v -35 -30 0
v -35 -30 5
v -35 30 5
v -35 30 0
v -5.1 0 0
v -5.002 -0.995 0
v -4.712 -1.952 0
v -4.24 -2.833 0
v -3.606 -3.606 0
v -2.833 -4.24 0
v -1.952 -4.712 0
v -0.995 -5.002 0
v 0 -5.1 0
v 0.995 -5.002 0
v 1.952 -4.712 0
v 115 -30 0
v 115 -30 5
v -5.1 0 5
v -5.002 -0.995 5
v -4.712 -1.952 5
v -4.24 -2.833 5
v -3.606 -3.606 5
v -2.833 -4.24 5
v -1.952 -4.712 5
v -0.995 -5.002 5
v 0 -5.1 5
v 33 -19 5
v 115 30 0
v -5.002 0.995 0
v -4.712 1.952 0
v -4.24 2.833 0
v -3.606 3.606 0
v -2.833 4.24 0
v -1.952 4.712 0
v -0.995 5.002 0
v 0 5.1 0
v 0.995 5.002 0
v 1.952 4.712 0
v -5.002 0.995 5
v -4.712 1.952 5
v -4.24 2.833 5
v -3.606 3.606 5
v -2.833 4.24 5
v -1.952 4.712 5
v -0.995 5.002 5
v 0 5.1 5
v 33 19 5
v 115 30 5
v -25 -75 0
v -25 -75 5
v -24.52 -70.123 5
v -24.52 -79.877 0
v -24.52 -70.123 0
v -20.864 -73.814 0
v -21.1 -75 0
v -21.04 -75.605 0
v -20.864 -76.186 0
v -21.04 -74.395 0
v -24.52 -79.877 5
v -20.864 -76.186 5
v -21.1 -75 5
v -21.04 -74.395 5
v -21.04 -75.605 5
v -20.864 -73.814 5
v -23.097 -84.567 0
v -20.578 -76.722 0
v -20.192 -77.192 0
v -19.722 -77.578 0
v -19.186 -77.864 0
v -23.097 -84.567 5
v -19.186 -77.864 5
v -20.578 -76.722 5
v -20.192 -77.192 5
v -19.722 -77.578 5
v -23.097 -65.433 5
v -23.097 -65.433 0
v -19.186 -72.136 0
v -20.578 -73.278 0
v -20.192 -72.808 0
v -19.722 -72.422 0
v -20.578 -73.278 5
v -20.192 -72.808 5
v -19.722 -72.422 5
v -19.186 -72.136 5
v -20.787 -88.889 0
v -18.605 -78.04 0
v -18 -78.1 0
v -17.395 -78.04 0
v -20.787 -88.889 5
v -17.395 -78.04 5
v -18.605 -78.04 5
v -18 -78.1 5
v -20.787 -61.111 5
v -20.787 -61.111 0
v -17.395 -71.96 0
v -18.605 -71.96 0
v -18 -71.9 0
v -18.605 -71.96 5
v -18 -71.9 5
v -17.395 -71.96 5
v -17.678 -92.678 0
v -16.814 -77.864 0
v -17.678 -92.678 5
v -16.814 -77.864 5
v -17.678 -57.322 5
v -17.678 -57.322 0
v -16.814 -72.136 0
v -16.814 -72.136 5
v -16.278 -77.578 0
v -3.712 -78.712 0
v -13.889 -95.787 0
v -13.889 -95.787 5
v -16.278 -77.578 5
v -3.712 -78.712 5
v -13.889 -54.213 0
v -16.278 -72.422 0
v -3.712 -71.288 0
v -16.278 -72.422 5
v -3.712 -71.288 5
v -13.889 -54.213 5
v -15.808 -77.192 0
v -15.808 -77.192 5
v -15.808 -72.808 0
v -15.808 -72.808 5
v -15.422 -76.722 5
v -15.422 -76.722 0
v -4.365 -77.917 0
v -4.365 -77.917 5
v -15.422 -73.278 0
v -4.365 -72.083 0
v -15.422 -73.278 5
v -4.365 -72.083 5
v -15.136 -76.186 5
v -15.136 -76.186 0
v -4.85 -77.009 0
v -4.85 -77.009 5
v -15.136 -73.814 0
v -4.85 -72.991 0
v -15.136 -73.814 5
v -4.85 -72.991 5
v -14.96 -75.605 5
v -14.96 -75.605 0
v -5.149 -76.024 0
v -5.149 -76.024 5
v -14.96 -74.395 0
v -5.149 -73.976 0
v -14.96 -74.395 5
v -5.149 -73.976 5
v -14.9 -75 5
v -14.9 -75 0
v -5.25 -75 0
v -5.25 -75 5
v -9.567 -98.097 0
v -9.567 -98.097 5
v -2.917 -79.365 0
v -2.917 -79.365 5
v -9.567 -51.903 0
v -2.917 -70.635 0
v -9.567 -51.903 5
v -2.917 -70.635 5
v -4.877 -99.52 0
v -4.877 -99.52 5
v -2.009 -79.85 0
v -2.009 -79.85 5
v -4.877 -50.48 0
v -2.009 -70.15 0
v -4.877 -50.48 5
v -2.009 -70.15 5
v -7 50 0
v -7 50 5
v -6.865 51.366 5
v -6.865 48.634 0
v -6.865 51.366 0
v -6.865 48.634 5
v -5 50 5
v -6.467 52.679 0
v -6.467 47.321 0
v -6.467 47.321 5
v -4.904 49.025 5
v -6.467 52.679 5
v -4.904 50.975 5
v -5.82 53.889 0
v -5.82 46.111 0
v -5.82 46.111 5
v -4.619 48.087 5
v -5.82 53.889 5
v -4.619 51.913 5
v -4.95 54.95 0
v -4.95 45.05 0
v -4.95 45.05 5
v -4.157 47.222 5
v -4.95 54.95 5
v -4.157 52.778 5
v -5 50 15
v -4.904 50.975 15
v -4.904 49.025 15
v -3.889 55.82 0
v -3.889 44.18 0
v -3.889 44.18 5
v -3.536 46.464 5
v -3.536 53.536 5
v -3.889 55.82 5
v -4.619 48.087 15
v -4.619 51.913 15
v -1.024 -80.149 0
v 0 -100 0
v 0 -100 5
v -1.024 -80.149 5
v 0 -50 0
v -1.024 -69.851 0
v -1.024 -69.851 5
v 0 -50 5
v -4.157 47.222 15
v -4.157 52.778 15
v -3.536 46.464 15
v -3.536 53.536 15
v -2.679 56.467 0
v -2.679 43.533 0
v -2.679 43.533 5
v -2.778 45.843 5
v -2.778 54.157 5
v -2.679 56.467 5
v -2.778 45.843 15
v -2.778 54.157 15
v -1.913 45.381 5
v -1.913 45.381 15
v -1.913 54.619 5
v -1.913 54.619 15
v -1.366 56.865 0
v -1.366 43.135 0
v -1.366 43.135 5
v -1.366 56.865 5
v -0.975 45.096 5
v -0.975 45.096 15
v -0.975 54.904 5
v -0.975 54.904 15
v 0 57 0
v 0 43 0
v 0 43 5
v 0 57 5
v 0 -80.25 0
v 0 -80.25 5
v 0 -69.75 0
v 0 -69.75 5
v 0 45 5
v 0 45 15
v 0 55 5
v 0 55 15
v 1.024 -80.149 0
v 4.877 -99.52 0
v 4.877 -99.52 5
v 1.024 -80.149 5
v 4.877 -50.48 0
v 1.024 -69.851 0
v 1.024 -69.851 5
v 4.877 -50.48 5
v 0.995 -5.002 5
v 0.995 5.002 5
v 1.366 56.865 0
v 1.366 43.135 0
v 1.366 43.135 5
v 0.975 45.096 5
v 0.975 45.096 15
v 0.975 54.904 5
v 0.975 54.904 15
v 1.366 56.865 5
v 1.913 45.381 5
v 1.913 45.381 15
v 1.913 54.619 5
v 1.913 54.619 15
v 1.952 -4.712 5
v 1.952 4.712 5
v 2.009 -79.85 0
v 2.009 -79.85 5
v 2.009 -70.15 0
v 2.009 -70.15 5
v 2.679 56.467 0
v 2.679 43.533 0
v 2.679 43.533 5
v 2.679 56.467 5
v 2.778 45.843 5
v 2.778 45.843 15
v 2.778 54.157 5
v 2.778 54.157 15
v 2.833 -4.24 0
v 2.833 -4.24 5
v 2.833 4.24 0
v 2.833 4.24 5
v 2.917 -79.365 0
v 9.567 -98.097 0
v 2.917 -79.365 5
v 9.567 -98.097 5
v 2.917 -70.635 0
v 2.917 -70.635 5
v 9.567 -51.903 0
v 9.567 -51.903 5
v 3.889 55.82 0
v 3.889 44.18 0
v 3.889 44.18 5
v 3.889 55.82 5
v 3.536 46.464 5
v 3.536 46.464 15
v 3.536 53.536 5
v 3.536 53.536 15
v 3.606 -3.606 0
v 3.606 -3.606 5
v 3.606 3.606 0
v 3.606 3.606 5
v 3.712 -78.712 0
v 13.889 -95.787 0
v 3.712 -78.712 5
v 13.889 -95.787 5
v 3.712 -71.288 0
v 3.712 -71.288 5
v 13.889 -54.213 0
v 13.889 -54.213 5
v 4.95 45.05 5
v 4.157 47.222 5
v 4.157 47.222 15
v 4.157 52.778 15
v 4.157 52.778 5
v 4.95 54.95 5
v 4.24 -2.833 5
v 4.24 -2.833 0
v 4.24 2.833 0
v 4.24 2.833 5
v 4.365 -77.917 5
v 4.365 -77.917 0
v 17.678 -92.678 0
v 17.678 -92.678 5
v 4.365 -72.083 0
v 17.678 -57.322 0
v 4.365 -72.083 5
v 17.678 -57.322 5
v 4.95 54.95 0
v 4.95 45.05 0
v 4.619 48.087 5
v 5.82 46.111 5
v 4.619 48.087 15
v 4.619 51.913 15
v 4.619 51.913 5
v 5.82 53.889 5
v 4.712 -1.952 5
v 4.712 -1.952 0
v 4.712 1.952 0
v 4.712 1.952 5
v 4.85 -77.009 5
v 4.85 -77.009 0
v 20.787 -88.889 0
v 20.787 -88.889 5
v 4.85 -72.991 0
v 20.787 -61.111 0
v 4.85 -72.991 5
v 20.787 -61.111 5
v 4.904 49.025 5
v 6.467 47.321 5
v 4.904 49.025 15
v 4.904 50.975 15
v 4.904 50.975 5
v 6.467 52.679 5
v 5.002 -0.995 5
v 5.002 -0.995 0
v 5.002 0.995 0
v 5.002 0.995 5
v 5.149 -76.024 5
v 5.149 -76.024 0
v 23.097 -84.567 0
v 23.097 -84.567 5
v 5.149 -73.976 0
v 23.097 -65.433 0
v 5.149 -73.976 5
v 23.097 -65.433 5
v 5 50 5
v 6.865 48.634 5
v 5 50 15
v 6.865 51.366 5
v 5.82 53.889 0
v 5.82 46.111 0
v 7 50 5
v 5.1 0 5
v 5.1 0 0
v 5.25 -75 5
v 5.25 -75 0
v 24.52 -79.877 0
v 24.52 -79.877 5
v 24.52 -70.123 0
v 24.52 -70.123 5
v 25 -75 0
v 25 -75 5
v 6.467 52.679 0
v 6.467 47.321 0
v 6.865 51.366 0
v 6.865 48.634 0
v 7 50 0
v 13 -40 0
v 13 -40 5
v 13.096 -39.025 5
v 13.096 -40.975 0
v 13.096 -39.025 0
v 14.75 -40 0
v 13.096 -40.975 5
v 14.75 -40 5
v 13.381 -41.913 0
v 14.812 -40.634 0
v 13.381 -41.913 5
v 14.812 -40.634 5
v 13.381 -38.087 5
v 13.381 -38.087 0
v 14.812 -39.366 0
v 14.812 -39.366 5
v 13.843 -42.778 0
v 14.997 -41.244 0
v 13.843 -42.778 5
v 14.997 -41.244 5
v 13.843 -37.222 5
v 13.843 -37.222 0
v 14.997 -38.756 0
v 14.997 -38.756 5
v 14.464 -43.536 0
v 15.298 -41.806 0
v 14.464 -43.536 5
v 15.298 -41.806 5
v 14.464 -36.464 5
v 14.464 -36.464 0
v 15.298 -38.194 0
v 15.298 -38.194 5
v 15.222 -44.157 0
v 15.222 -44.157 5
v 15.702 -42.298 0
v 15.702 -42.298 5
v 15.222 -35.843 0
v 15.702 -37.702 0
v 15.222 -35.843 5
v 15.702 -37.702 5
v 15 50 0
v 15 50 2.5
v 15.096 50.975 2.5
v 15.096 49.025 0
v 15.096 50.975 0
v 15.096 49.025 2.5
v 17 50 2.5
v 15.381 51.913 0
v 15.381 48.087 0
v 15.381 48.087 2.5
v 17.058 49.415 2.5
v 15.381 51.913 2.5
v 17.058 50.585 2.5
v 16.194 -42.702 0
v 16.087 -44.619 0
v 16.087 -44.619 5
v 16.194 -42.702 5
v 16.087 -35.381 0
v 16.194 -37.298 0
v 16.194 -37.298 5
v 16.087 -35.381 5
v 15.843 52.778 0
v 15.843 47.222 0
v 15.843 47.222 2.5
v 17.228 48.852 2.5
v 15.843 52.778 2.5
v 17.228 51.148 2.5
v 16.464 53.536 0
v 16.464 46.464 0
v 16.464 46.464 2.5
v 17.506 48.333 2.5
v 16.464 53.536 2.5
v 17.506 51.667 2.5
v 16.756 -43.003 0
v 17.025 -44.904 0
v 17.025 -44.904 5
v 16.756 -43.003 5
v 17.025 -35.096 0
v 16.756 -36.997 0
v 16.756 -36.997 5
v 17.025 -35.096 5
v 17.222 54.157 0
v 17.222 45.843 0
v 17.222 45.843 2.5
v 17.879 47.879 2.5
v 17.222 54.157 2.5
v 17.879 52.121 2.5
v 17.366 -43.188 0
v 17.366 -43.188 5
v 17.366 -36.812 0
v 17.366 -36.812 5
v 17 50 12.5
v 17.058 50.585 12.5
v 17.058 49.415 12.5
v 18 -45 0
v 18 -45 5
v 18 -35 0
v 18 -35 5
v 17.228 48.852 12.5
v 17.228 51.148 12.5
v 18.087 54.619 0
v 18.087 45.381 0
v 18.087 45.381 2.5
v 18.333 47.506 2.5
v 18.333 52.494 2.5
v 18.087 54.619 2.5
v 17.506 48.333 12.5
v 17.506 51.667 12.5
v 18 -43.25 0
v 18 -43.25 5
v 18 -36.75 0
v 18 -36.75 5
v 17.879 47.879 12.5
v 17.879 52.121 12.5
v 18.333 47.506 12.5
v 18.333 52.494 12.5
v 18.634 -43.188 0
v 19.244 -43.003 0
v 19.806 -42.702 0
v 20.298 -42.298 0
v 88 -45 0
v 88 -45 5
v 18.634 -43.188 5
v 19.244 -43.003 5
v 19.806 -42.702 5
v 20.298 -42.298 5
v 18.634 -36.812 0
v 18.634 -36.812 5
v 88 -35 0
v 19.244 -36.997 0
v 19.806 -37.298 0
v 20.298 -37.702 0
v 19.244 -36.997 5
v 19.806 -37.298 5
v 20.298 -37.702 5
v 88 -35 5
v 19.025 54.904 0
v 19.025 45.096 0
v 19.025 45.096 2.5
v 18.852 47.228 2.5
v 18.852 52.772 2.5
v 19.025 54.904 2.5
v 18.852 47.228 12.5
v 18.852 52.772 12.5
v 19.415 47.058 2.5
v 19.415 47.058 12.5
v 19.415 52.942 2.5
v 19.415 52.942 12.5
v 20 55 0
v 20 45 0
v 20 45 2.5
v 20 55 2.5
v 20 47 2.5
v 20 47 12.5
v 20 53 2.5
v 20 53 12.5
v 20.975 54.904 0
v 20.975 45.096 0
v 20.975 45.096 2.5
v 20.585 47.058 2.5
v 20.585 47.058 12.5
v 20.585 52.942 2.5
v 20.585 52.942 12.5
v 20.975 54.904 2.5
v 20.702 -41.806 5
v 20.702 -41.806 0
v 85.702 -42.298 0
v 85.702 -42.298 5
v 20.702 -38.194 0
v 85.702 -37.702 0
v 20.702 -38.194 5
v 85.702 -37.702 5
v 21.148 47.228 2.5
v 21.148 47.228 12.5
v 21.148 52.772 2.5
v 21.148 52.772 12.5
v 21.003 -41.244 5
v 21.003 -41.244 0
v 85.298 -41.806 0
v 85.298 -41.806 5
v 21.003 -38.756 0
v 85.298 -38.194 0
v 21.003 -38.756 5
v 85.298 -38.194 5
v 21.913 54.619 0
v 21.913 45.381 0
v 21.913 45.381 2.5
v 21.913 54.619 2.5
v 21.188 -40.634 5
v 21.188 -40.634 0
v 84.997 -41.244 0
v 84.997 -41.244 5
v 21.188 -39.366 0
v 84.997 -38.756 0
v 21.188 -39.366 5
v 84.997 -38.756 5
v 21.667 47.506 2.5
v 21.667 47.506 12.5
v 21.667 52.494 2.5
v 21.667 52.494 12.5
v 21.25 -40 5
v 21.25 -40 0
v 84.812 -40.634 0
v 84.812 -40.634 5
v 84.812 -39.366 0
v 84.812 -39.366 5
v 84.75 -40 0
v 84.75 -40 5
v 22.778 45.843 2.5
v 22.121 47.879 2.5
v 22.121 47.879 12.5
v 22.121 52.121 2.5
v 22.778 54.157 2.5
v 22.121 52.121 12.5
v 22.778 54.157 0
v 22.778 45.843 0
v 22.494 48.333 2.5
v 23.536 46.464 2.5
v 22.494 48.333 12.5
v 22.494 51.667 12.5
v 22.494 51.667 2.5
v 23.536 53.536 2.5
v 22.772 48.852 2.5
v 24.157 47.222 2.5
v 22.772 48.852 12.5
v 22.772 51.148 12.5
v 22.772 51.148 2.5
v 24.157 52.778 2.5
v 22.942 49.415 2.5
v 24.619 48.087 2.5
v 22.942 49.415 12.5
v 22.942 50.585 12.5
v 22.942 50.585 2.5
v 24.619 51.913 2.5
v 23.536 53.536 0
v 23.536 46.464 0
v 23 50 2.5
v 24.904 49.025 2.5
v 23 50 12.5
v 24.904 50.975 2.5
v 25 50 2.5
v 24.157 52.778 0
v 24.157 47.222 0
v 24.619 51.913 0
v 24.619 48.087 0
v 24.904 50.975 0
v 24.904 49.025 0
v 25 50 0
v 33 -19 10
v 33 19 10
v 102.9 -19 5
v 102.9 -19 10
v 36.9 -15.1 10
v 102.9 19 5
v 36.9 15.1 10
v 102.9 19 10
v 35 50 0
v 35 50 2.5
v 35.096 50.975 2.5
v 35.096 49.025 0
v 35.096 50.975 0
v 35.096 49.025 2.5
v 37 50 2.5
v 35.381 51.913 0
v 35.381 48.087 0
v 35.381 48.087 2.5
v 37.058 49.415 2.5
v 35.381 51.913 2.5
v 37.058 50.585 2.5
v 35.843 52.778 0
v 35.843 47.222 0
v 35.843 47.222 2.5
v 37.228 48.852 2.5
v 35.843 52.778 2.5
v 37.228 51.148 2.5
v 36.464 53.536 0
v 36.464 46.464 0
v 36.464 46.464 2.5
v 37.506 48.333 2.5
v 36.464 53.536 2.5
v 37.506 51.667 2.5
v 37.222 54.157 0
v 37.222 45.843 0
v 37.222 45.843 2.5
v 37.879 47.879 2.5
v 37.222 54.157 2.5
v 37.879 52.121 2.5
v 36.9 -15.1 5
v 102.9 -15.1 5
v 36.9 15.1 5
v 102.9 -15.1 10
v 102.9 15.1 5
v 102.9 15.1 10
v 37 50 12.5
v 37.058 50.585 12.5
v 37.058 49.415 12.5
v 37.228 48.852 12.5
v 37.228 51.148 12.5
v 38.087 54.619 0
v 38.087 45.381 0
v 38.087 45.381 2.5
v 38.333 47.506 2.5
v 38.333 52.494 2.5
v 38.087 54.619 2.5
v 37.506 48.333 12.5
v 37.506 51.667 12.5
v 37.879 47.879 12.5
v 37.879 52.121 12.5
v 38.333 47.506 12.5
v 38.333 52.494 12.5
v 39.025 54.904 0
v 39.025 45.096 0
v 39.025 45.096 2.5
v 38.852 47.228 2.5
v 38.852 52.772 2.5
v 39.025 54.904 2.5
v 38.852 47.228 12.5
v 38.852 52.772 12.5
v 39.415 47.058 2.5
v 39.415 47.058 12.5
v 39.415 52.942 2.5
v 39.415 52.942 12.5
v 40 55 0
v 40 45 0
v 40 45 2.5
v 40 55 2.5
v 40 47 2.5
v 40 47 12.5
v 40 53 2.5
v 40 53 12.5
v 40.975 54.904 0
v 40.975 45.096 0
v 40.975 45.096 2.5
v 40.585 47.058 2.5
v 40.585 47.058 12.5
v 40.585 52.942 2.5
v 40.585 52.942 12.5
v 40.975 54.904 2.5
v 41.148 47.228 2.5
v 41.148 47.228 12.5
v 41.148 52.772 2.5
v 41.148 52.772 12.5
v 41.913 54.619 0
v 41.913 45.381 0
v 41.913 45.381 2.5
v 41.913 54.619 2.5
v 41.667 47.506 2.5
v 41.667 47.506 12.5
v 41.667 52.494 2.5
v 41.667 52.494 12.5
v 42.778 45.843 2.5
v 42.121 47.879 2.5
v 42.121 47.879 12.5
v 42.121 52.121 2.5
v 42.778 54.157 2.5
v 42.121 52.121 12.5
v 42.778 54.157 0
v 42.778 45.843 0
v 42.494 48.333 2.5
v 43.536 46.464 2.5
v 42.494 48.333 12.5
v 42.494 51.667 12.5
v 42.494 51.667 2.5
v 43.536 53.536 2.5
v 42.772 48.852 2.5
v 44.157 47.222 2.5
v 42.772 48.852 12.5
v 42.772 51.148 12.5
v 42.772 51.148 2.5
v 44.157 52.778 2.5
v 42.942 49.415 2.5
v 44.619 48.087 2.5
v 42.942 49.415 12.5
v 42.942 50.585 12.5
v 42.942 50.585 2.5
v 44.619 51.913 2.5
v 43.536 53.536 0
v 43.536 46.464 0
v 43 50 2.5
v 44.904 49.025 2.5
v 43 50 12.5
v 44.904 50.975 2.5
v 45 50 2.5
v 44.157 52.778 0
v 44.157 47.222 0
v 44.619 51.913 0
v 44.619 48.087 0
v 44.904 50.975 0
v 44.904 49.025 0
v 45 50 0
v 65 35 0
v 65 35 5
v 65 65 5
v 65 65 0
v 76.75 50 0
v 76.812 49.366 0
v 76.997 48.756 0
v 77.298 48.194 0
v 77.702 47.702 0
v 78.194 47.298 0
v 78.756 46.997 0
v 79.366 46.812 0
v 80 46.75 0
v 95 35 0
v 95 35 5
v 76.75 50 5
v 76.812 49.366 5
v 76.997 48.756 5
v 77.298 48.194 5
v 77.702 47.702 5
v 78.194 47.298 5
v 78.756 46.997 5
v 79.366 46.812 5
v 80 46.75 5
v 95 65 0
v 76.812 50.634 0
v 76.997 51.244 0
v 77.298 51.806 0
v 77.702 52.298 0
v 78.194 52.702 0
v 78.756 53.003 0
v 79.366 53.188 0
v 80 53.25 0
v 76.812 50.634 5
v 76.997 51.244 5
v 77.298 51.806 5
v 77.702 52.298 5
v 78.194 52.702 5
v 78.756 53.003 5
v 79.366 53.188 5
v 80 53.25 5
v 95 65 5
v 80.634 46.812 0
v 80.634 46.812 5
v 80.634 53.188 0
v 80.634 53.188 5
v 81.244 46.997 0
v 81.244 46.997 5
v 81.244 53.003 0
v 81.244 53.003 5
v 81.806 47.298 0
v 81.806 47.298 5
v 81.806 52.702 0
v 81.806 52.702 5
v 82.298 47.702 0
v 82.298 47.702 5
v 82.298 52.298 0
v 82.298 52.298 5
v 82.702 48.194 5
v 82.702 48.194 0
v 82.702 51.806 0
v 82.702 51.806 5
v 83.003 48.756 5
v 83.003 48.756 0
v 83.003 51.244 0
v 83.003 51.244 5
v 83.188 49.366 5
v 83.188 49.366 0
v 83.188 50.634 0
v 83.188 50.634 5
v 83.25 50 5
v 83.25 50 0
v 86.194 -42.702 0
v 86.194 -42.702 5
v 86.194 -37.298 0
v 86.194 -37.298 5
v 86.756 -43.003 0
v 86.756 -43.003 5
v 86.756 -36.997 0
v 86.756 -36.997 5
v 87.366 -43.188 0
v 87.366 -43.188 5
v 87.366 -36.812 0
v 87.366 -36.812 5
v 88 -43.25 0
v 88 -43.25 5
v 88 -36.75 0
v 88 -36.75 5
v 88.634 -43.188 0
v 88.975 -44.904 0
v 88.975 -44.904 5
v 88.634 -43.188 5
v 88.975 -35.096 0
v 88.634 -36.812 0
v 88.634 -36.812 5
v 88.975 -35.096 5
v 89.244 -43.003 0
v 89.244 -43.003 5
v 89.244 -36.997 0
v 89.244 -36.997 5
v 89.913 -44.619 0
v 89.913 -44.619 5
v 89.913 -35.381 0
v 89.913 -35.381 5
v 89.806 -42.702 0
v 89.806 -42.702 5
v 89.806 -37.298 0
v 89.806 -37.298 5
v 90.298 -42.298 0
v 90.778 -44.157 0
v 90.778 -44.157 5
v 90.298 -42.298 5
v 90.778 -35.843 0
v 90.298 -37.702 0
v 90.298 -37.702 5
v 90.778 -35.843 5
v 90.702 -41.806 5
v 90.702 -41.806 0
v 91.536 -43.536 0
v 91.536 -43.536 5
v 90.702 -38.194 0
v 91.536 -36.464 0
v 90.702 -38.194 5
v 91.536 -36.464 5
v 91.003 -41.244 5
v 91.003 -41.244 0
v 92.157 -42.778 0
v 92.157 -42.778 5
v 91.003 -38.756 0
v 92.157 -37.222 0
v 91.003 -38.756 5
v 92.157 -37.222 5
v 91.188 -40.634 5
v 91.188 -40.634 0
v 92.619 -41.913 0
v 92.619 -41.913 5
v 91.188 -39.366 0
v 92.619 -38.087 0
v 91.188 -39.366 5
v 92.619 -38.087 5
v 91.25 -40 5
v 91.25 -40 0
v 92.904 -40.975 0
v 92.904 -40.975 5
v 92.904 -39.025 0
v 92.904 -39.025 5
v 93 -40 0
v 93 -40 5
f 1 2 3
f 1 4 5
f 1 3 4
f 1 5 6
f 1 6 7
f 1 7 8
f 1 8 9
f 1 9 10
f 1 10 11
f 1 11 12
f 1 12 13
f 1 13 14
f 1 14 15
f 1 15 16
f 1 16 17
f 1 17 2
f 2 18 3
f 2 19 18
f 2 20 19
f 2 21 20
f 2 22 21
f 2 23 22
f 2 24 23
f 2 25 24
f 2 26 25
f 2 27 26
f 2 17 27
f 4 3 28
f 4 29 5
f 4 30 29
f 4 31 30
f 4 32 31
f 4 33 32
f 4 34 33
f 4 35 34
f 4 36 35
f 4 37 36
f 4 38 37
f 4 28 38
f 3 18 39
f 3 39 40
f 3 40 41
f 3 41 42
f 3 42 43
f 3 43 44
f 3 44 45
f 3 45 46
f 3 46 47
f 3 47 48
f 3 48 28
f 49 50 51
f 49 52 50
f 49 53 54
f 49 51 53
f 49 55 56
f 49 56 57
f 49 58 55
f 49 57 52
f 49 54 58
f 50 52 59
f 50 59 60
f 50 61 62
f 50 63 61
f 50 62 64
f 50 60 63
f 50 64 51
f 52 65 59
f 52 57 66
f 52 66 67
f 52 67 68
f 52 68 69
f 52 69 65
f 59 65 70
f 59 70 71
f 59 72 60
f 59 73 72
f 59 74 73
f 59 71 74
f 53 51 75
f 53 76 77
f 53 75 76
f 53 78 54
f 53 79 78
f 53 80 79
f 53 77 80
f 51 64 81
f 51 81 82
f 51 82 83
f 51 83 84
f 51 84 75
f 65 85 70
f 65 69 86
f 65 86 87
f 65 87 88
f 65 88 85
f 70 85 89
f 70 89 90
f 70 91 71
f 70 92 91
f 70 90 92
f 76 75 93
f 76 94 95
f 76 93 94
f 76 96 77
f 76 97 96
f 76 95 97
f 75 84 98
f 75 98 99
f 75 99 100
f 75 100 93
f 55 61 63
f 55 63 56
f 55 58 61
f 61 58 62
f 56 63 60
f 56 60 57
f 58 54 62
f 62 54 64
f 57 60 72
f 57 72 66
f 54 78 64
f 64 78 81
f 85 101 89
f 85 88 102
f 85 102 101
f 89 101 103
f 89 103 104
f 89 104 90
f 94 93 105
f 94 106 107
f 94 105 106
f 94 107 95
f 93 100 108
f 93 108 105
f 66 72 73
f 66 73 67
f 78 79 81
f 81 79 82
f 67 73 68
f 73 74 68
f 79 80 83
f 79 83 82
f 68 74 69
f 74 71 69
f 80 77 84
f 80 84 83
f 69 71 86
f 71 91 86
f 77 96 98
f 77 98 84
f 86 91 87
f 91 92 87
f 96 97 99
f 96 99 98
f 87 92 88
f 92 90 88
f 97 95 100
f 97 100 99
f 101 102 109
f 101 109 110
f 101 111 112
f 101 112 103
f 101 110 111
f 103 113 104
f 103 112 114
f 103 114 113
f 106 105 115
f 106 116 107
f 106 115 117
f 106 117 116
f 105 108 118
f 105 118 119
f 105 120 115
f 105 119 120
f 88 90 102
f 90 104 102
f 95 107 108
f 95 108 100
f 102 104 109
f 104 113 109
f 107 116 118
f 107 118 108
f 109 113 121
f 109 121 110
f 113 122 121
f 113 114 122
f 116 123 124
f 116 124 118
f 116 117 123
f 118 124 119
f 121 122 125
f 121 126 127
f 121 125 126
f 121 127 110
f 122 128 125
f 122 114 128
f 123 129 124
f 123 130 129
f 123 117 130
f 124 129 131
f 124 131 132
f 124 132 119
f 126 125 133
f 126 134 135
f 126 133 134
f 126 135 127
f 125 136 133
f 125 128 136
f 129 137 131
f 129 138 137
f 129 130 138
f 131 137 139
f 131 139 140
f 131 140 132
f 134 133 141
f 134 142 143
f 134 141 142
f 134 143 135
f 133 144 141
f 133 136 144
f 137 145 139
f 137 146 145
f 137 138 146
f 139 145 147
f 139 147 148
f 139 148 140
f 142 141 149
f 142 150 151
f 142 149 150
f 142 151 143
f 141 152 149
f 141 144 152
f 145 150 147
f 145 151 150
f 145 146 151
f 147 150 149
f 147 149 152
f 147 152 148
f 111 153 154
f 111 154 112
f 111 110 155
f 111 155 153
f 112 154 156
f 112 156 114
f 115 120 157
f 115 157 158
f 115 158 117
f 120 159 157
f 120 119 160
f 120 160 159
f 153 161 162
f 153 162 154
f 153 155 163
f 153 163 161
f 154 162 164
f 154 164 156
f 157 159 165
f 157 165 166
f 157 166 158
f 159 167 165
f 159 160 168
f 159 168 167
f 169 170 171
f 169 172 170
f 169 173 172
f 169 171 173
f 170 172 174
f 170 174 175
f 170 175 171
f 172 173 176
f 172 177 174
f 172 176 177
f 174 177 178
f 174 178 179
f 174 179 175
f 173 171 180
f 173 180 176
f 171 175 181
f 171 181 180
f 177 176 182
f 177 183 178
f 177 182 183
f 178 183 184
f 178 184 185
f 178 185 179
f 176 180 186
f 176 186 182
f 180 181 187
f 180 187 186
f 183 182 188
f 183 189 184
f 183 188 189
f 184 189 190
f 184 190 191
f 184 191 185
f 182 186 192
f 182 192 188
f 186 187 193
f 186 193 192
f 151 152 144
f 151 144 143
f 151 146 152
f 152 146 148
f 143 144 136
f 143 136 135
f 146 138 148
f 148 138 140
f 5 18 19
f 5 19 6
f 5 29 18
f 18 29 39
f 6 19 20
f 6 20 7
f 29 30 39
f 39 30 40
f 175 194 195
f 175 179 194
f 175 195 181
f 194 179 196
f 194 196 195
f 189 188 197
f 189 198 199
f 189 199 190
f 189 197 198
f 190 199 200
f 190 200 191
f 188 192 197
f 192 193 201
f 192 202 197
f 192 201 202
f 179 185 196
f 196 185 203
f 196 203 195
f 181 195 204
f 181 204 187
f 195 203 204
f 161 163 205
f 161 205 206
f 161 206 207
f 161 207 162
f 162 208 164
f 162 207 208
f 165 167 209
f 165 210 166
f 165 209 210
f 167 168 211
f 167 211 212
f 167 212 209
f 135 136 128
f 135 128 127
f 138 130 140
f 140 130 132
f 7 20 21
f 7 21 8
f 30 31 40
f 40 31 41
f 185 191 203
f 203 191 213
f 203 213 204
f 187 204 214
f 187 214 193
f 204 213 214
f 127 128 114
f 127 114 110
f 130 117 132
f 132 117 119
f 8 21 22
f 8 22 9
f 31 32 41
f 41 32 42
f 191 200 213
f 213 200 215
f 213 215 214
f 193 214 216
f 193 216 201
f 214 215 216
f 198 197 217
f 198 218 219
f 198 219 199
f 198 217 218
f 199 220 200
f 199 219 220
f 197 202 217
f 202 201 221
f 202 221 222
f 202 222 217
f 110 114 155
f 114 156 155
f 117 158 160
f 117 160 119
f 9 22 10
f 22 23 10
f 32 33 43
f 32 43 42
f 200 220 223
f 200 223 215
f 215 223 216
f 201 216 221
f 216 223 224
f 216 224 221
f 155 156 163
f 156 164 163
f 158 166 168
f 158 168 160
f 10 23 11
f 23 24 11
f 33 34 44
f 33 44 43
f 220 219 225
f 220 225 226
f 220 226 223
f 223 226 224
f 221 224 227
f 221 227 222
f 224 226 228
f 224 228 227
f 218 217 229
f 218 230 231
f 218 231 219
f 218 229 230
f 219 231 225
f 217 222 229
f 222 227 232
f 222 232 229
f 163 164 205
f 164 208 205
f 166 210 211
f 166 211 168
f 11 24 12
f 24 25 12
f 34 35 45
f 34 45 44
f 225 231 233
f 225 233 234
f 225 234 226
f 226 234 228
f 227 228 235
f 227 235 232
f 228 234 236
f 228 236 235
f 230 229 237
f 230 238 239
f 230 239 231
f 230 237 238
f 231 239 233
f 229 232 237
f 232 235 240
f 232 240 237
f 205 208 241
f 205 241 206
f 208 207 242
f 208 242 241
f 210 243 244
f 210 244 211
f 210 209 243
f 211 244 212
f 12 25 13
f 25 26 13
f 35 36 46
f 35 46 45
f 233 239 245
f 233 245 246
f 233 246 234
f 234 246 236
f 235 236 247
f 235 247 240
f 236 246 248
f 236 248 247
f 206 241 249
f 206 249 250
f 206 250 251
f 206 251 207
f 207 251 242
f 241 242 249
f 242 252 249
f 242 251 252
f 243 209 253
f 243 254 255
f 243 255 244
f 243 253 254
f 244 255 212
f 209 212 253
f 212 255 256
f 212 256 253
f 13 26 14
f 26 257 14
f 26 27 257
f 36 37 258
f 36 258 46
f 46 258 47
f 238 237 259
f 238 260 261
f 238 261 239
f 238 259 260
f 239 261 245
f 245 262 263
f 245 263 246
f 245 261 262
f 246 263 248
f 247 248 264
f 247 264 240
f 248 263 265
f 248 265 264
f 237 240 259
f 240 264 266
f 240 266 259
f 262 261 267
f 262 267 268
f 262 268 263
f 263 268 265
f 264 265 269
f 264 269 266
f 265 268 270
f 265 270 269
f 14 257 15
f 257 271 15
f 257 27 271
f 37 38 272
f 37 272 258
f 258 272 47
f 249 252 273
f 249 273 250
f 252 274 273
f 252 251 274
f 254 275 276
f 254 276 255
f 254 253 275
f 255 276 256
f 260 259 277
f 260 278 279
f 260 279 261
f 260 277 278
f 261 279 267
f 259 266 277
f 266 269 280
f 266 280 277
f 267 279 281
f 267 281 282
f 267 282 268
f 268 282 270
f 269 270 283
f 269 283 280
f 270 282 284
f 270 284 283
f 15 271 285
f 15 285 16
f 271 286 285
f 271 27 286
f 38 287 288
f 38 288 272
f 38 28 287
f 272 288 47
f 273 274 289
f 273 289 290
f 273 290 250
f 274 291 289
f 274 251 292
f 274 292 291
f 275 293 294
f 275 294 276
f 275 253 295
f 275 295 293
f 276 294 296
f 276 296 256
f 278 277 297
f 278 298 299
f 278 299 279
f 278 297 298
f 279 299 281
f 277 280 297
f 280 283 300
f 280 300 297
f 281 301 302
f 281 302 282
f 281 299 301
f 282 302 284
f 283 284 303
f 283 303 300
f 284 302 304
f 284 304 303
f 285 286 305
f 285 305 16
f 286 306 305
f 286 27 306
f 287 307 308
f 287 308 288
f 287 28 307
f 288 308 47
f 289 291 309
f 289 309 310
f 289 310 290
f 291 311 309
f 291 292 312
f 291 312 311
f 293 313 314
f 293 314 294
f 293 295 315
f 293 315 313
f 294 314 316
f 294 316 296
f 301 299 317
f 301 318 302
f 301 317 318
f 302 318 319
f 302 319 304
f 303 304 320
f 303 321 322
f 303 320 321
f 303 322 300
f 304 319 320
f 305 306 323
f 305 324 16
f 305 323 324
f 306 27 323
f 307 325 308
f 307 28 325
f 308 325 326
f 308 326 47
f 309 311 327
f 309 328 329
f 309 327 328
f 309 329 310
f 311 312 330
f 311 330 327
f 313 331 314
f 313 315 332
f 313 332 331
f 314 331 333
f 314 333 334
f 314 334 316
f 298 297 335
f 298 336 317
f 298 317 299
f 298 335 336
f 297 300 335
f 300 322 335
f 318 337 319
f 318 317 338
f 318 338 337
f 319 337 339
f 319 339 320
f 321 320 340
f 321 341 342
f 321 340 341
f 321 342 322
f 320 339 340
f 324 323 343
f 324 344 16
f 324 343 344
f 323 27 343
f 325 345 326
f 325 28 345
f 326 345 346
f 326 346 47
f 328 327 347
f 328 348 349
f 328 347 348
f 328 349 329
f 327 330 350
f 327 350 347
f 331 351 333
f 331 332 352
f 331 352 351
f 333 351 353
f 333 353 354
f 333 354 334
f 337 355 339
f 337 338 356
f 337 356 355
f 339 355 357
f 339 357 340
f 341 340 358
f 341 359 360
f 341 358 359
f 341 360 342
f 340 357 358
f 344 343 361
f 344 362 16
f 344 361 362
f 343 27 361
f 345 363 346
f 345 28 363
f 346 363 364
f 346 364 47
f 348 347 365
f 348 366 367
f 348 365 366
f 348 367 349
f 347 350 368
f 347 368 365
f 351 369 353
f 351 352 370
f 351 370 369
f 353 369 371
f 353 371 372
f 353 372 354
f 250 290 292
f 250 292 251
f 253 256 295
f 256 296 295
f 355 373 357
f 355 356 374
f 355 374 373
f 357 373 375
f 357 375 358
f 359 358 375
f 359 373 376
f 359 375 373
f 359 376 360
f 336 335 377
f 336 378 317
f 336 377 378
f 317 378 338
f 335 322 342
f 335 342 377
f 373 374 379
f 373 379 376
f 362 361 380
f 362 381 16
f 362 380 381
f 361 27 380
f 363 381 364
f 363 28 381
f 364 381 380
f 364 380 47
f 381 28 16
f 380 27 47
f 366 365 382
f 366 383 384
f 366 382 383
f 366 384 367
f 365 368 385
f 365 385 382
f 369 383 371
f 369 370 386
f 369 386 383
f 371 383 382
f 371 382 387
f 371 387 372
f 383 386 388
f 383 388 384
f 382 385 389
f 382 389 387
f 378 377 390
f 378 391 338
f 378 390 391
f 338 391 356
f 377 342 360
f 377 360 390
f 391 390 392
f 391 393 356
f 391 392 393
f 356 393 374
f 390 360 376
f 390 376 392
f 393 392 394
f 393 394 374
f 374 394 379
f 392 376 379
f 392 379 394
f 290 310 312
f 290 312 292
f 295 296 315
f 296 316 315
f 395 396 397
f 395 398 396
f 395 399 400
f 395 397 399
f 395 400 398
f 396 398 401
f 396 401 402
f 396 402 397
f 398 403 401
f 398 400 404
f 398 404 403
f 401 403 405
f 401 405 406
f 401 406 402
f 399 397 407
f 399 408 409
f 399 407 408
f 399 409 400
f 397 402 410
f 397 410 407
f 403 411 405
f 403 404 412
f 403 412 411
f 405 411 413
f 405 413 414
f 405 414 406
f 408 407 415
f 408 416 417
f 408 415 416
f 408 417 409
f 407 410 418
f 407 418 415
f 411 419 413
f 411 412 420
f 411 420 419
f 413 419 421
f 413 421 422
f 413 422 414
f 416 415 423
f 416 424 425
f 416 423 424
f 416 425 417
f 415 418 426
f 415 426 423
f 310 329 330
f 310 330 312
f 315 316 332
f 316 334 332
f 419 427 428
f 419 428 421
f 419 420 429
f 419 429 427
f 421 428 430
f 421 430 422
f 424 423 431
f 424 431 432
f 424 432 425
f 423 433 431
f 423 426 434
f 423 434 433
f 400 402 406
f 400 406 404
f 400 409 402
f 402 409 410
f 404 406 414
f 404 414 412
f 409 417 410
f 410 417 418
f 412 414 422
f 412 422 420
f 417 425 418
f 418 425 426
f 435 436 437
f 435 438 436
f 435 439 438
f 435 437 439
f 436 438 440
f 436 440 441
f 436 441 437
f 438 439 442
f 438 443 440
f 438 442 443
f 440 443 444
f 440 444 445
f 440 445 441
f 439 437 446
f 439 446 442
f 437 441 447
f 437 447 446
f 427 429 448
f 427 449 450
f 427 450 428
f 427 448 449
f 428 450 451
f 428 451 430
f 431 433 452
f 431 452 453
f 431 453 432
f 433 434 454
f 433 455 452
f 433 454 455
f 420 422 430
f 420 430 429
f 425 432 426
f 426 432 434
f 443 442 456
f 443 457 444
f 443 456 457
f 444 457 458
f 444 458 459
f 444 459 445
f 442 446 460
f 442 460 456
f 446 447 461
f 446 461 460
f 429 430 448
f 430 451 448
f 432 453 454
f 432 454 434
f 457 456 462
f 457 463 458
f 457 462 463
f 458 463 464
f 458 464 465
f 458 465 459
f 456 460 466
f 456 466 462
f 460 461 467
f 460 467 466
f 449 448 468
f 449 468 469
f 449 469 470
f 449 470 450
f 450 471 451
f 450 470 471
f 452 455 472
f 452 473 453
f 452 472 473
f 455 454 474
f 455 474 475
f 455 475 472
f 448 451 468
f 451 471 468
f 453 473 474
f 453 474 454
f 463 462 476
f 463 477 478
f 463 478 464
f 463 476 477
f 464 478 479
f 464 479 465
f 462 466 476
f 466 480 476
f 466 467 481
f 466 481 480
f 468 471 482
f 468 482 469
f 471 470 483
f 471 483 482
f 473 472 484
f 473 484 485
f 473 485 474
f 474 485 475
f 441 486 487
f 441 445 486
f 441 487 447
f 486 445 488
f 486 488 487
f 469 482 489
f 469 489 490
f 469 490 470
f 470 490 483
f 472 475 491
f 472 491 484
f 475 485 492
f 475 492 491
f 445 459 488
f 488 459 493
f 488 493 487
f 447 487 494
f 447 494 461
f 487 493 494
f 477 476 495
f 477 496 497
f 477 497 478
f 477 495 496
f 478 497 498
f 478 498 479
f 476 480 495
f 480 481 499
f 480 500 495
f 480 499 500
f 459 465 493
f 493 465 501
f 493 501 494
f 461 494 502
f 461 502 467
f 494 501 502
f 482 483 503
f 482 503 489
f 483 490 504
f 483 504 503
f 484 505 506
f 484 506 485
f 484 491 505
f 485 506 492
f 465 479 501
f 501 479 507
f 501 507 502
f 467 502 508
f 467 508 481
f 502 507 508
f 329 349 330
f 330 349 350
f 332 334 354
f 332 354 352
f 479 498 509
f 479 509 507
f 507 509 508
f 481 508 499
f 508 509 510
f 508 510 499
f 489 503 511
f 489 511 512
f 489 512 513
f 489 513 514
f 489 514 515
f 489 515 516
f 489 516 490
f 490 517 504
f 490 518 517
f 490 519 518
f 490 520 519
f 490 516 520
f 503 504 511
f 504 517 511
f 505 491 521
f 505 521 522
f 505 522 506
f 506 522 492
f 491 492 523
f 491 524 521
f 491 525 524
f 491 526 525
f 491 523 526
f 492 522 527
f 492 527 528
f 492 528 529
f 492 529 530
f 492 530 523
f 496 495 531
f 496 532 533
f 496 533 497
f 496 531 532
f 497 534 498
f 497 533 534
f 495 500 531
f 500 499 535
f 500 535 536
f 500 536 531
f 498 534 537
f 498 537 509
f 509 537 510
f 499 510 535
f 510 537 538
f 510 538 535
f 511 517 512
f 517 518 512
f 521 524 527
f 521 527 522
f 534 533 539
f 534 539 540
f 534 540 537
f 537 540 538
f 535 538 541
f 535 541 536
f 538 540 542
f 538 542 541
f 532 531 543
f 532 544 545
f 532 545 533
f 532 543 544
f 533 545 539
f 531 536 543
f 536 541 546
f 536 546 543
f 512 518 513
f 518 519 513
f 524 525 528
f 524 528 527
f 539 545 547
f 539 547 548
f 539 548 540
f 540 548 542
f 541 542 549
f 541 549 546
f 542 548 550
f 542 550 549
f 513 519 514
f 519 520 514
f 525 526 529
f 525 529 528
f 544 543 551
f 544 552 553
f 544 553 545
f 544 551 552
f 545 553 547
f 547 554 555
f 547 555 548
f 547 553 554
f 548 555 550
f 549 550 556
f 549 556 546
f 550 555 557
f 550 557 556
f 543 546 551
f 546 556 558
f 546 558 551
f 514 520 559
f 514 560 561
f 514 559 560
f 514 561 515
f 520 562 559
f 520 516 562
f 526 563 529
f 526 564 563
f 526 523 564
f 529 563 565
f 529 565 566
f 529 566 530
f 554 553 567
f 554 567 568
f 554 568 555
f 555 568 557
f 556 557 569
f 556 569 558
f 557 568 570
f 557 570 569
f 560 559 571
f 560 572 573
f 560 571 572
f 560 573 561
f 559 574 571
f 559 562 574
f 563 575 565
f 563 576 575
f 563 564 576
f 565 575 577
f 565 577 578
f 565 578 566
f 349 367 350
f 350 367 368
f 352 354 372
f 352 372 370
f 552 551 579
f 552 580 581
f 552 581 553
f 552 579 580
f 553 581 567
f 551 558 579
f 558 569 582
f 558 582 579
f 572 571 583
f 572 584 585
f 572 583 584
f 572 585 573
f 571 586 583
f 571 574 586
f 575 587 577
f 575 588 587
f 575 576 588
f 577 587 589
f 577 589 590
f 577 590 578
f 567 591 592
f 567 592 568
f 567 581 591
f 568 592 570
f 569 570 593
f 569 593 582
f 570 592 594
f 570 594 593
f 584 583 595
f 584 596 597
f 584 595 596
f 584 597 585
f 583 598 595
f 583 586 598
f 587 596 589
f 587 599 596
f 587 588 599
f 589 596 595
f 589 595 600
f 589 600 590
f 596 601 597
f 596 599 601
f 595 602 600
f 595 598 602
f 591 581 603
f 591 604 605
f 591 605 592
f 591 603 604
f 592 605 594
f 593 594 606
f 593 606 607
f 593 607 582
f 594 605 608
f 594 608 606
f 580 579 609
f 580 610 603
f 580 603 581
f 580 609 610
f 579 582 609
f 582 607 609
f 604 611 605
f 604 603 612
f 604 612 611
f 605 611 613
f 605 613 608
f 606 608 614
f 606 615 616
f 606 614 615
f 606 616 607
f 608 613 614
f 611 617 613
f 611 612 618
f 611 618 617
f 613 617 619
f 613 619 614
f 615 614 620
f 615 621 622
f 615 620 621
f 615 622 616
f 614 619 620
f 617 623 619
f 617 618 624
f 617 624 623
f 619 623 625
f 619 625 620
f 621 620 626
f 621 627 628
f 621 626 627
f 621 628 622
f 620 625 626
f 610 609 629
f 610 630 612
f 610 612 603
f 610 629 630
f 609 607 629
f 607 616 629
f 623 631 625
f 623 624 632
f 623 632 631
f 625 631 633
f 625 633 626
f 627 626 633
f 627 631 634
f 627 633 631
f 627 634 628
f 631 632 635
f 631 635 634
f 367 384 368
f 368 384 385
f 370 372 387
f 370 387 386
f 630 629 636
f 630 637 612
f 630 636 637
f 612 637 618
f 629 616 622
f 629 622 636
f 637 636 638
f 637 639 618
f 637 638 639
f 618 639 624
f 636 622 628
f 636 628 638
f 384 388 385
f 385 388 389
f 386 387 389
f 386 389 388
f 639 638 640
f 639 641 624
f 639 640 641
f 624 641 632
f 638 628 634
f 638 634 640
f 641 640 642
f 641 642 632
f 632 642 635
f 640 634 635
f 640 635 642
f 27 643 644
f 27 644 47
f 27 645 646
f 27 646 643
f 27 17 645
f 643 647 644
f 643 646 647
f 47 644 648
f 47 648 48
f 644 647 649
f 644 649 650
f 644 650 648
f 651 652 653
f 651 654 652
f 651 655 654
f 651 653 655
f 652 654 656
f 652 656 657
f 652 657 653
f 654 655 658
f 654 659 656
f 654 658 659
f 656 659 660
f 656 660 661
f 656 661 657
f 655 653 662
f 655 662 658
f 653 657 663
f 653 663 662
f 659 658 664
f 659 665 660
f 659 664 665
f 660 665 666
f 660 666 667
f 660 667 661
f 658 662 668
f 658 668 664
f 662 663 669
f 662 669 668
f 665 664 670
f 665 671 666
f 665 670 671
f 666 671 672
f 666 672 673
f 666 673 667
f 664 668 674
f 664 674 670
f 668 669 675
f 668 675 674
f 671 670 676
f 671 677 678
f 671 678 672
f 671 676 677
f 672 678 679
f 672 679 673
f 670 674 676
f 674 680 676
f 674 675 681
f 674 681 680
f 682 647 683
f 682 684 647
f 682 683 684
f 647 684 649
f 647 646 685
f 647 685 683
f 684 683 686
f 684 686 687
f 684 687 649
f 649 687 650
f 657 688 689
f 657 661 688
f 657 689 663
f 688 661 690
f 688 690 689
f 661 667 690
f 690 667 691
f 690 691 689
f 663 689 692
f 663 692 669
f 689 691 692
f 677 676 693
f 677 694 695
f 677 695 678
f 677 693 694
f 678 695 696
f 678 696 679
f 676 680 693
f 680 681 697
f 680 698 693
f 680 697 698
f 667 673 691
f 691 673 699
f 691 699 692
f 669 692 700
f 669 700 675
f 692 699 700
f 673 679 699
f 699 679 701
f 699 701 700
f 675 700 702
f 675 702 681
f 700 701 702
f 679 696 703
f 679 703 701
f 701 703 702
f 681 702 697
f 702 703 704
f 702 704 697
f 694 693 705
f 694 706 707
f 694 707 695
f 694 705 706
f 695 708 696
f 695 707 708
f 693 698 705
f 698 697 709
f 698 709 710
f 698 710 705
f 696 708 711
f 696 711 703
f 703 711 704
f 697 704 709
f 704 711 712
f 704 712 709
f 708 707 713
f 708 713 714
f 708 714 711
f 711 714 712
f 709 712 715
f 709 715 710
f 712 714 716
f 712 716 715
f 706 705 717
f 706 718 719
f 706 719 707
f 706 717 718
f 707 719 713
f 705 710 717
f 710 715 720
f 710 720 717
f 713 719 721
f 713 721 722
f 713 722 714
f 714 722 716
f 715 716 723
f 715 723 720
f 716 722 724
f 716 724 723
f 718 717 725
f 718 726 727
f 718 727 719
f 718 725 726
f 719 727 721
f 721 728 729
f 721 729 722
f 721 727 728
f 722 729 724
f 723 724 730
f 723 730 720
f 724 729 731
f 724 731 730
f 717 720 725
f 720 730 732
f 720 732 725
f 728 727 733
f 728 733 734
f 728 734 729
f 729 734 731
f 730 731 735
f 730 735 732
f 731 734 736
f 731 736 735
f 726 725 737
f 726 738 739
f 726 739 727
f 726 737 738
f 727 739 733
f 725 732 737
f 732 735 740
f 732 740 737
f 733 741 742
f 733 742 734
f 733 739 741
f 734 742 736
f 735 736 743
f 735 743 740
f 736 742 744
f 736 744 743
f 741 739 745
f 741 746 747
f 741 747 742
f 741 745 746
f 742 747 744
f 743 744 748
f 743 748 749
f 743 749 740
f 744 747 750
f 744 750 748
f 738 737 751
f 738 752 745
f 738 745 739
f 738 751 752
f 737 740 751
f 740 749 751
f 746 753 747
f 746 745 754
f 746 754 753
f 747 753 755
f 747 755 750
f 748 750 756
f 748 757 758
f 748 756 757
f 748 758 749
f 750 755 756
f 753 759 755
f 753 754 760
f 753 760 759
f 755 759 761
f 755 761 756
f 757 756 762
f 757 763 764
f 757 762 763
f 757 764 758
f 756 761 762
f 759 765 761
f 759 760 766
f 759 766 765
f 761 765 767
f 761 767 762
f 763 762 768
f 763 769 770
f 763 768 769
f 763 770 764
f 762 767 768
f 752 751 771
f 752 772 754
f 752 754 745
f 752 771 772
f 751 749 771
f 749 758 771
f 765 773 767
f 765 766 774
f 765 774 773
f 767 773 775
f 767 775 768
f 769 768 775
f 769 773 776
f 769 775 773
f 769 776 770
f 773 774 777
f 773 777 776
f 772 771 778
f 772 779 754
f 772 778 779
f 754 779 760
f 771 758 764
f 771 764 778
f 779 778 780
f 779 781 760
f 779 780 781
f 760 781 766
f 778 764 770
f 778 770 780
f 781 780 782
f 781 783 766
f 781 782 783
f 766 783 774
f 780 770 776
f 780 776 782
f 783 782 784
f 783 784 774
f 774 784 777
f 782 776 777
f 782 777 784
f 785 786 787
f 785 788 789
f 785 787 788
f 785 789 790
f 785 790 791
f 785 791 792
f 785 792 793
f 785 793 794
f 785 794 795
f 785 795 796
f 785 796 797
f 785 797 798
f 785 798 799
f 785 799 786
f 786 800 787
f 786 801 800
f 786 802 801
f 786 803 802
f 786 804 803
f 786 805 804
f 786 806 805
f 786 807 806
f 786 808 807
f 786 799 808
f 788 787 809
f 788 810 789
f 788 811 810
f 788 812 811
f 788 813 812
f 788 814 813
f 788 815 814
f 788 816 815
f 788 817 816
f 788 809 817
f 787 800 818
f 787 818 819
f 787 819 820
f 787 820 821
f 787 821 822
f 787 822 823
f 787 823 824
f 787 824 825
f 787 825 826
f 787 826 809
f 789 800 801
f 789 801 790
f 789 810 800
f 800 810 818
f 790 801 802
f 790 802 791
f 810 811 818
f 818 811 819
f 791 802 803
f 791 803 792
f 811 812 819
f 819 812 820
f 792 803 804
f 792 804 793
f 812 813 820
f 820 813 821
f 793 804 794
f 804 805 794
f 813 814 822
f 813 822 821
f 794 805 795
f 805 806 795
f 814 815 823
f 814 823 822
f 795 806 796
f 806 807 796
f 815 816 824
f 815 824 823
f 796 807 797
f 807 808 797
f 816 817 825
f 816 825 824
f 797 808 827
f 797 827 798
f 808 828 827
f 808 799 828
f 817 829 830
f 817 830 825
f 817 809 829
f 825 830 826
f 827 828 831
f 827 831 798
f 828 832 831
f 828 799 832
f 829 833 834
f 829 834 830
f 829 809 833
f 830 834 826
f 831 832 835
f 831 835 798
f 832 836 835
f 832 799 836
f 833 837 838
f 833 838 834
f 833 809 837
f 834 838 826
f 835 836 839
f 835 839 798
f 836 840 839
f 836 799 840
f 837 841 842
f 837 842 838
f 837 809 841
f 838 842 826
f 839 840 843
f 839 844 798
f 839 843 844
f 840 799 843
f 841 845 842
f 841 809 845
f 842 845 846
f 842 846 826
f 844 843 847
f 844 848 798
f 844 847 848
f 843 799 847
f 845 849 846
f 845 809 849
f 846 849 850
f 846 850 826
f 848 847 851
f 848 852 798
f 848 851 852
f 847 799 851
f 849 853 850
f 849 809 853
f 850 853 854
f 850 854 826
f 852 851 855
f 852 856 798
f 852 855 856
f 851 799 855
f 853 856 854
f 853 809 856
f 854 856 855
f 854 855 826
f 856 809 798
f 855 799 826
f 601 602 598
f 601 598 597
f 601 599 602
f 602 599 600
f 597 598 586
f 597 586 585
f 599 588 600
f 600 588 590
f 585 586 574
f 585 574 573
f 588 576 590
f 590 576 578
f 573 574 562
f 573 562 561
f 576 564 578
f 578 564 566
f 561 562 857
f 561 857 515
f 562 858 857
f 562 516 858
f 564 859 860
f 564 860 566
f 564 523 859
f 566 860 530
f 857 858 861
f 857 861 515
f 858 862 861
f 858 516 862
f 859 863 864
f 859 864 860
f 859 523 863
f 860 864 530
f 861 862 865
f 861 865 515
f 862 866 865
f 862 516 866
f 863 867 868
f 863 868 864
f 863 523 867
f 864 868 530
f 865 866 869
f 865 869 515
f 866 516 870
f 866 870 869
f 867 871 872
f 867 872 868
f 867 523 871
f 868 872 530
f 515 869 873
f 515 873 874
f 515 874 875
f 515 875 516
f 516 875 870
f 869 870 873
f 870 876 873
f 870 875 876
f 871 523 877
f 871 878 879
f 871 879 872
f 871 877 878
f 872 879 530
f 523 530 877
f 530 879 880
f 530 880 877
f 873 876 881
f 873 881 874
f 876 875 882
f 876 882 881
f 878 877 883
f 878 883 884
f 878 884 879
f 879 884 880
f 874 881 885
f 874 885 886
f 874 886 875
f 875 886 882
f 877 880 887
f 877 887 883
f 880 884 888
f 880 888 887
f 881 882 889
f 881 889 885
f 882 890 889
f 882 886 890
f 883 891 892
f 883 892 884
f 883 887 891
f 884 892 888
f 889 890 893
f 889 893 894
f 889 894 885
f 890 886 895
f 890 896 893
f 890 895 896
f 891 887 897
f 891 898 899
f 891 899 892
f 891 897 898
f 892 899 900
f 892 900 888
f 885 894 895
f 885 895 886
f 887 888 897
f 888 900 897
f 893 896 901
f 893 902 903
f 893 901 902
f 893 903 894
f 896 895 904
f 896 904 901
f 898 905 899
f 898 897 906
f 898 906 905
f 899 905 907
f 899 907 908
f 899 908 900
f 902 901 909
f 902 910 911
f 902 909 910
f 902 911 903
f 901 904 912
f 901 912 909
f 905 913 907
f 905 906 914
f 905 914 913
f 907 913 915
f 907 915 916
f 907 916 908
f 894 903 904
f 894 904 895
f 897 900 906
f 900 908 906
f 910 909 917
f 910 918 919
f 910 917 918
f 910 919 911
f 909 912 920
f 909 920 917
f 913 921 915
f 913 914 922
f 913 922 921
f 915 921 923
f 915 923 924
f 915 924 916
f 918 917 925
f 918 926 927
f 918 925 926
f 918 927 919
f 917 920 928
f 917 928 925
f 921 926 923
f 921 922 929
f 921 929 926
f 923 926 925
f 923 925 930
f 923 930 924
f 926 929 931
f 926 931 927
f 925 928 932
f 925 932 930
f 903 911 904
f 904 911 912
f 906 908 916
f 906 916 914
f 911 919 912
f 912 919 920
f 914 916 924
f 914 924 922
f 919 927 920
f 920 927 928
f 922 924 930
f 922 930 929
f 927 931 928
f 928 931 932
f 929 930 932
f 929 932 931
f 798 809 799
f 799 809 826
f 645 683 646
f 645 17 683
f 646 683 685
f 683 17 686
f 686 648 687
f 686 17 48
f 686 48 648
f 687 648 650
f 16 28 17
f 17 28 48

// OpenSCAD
$fn = 32;

translate([0,-75,0]){
    
    linear_extrude(5)
        difference(){
            circle(25);
            translate([-18,0,0])
                circle(3.1);
            circle(5.25);
        }
    }
        
        
        
    

linear_extrude(5)
    difference(){
        translate([40,0,0])
            square([150,60],center = true);
        circle(5.1);
    }

    
translate([33,0,0])
    cube([3.9,16,10]);
translate([33,15.1,0])
    cube([69.9,3.9,10]);
mirror([0,1,0]){
    translate([33,0,0])
        cube([3.9,16,10]);
    translate([33,15.1,0])
        cube([69.9,3.9,10]);

}
    
    
    

        
translate([0,100,15])
    rotate([180,0,0]){
        translate([20,50,2.5]){
            linear_extrude(10)
                circle(3);
            translate([0,0,10])
                linear_extrude(2.5)
                    circle(5);
        }


        translate([40,50,2.5]){
            linear_extrude(10)
                circle(3);
            translate([0,0,10])
                linear_extrude(2.5)
                    circle(5);
        }
        translate([0,50,0]){
            linear_extrude(10)
                circle(5);
            translate([0,0,10])
                linear_extrude(5)
                    circle(7);
        }
    }


translate([18,-40,0])
    linear_extrude(5)
        difference(){
            hull(){
                translate([70,0,0])
                    circle(5);
                circle(5);
            }
            translate([70,0,0])
                    circle(3.25);
                circle(3.25);
        }
            
        
translate([80,50,0])
    linear_extrude(5)    
            difference(){
                translate([0,0,0])
                    square(30,center = true);
                translate([0,0,0])
                     circle(3.25);
            }
        
